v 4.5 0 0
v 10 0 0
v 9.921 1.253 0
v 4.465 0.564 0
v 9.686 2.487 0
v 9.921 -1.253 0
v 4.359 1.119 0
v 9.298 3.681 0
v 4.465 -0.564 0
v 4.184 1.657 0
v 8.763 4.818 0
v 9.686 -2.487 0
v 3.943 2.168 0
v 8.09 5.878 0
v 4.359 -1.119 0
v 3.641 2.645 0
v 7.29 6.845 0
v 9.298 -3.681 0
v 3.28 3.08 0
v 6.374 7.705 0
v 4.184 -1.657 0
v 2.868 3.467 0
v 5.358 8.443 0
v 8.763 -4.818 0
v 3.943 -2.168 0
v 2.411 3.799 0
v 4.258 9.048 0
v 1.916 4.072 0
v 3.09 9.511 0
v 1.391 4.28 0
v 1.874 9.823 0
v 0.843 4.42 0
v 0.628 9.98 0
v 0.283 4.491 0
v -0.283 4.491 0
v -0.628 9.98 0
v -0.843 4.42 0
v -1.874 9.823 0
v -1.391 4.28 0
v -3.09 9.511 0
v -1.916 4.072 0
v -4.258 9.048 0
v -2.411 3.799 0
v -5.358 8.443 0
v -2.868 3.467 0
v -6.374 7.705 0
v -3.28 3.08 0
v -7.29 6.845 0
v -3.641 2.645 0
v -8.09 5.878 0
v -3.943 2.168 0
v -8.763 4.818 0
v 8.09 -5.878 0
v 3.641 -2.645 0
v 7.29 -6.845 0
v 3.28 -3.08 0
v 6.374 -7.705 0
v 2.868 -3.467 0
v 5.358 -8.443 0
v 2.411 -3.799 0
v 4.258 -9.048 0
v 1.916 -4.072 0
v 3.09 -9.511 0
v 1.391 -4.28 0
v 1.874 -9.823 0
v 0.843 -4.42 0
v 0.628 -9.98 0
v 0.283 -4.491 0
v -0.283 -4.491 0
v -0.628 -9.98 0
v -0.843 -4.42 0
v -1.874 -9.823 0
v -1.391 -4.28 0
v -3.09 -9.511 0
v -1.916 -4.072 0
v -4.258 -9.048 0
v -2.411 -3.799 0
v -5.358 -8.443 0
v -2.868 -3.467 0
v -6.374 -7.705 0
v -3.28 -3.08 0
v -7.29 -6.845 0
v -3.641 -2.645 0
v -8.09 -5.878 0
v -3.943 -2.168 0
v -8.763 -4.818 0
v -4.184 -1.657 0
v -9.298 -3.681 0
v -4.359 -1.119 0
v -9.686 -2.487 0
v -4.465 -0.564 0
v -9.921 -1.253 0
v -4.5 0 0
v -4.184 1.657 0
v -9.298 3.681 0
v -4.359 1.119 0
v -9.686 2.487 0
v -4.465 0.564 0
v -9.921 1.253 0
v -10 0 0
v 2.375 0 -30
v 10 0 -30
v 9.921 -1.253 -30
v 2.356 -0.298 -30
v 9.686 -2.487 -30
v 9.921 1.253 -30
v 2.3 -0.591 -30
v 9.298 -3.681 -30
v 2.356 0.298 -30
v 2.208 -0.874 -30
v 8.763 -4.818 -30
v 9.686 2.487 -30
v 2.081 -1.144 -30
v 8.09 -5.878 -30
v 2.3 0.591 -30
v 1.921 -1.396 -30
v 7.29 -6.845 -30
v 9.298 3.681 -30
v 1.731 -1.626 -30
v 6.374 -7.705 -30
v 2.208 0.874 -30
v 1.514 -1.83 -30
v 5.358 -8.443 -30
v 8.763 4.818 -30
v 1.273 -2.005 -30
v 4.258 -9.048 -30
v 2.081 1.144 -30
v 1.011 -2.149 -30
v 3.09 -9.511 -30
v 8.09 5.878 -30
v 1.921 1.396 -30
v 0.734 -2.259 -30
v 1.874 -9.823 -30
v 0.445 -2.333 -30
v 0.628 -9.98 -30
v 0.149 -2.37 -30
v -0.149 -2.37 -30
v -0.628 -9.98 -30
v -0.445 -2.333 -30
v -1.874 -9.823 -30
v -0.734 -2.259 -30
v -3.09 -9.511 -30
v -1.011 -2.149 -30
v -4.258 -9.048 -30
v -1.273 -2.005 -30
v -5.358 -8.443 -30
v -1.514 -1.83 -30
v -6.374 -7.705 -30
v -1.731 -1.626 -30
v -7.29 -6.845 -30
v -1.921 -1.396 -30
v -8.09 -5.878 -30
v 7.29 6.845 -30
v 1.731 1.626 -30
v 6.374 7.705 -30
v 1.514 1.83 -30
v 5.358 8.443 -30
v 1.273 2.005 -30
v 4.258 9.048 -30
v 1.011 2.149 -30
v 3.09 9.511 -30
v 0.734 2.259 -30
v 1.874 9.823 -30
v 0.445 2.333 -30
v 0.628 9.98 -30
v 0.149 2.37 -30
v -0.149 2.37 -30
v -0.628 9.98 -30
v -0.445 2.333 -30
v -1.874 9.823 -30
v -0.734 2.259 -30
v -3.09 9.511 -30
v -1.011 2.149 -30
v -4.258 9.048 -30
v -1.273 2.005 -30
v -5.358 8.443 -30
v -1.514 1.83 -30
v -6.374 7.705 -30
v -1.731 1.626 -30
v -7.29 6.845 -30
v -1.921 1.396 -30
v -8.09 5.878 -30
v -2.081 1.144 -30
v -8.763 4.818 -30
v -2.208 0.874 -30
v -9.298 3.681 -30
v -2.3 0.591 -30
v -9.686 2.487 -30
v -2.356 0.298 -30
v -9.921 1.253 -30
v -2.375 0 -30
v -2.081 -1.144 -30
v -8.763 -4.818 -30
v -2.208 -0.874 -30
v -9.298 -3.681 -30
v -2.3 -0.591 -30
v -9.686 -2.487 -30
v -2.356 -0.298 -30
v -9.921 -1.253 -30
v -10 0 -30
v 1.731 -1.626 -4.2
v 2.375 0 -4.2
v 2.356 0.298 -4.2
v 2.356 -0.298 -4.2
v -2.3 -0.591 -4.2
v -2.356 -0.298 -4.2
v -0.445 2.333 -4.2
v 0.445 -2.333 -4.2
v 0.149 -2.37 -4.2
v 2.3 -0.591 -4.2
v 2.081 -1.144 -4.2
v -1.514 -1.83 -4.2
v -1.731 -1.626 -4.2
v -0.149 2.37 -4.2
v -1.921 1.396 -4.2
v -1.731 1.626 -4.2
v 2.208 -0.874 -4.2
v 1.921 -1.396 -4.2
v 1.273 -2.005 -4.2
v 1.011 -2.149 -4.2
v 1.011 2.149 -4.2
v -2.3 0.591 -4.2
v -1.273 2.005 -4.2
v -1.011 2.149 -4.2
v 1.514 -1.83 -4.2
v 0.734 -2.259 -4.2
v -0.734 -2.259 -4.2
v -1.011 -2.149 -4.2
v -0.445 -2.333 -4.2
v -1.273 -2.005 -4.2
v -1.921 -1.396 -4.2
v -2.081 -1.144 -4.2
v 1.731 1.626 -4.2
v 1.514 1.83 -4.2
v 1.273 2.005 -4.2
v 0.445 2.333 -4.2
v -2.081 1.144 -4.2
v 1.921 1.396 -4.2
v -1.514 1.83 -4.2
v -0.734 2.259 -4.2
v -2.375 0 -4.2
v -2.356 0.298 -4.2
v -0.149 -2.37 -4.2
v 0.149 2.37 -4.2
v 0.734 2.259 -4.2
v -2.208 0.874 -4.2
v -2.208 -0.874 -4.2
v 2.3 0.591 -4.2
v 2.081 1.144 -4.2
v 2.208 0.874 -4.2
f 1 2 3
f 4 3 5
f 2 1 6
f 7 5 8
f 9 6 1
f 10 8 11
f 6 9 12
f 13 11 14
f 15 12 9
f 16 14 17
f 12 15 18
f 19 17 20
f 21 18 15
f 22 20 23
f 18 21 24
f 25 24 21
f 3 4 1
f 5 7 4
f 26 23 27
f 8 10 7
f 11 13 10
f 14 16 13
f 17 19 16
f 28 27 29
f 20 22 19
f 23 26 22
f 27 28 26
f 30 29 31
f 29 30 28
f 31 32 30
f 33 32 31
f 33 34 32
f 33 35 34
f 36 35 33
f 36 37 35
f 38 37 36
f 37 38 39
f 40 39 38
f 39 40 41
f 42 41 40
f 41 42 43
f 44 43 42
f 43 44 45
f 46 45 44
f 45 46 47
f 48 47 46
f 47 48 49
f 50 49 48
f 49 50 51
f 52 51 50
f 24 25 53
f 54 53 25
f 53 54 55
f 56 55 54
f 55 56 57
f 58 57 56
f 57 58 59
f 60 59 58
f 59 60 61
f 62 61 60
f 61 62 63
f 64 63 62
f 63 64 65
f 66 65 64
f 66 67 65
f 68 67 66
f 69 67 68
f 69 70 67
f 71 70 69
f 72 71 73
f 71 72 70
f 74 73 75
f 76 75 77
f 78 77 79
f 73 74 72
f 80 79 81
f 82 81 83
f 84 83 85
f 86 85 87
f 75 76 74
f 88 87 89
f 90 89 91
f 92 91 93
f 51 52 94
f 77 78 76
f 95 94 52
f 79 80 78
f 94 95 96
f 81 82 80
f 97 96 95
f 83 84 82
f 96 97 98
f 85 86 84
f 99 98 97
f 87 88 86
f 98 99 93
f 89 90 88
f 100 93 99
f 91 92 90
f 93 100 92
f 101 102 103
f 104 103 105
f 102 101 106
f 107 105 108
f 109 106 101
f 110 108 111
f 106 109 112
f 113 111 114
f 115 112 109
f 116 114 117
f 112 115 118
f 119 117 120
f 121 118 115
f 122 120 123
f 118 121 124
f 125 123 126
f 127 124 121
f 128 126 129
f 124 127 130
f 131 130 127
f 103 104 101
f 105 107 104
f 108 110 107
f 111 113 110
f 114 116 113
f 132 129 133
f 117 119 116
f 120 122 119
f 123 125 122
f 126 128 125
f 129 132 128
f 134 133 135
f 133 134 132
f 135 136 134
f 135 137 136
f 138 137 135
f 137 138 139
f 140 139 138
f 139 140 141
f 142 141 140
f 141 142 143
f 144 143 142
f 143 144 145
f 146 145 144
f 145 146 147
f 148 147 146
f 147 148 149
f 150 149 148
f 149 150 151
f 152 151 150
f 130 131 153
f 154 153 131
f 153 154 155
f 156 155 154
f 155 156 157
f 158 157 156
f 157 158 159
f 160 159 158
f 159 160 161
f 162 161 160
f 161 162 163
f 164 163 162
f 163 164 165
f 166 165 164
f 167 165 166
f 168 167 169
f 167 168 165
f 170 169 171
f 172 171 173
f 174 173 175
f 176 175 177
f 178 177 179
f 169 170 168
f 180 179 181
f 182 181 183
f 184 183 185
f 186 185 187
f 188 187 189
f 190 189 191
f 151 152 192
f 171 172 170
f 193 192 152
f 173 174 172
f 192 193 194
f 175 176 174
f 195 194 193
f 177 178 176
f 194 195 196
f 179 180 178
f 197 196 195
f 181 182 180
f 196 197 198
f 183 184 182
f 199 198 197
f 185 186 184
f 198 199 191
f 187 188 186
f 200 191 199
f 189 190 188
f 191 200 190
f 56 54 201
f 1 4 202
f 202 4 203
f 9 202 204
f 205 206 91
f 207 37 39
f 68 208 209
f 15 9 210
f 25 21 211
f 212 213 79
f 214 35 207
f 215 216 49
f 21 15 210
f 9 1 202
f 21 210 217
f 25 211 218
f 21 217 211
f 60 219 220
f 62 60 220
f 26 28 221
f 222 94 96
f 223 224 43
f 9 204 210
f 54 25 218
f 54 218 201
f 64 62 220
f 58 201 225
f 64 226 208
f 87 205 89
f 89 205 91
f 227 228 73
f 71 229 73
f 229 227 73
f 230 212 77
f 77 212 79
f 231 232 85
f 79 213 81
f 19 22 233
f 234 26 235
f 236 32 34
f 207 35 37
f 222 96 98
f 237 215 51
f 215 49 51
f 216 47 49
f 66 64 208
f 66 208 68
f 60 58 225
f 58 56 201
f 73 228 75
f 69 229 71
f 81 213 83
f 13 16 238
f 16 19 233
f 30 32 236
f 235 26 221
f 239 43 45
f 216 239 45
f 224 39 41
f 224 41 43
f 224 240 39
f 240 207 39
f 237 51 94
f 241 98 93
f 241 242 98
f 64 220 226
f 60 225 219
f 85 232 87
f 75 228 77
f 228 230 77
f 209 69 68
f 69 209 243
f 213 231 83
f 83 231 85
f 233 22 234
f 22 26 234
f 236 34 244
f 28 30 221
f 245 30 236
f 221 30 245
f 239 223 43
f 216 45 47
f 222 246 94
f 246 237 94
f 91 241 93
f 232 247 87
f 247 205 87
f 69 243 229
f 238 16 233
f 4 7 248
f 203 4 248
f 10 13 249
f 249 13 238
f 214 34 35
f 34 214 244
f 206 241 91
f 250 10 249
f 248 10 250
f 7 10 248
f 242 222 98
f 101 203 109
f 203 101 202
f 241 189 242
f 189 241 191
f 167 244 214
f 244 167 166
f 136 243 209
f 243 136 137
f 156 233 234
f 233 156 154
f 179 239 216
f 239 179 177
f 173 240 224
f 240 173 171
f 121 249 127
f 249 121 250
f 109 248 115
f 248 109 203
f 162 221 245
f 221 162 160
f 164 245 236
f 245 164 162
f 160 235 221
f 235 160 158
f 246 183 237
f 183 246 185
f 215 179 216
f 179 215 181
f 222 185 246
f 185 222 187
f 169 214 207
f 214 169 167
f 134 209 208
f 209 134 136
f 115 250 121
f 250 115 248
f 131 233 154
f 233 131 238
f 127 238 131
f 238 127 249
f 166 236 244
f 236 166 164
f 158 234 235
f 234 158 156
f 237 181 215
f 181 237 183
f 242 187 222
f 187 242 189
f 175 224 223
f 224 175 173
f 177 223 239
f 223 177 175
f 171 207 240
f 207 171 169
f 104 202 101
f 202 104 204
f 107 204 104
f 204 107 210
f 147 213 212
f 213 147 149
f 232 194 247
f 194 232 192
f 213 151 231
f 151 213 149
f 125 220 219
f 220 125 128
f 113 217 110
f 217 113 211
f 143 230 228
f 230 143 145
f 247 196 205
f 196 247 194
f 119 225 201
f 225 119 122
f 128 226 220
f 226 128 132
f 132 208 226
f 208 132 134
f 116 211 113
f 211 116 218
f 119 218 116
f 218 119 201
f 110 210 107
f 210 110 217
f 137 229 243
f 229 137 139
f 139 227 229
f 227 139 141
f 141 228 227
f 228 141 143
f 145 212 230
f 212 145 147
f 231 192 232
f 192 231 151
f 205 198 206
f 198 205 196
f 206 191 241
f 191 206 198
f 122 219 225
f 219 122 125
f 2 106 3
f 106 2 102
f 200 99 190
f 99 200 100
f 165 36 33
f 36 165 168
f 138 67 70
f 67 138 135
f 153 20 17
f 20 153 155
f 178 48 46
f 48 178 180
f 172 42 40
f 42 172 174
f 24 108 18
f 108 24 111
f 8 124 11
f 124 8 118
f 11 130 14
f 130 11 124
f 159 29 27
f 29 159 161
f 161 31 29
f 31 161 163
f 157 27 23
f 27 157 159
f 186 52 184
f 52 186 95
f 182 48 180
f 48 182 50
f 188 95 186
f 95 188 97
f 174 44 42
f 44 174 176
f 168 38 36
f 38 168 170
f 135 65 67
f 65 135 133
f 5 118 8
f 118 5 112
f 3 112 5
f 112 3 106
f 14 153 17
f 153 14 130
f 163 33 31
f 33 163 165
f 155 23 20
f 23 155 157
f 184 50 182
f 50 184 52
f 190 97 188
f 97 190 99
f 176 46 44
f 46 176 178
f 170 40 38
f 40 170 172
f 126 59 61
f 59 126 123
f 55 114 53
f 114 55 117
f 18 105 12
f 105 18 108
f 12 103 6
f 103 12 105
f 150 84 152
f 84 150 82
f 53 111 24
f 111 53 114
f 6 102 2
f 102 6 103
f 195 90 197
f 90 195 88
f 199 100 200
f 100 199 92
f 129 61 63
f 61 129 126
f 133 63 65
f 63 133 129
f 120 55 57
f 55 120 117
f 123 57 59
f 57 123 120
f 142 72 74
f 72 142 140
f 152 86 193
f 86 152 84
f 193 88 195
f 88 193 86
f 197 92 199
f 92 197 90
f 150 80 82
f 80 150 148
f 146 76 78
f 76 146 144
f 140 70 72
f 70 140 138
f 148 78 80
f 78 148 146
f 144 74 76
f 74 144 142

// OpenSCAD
$fn = 50;


difference() {
	union() {
		translate(v = [0, 0, -30.0000000000]) {
			cylinder(h = 30, r = 10.0000000000);
		}
		cylinder(h = 0, r = 19.0000000000);
	}
	union() {
		translate(v = [0, 0, 0]) {
			rotate(a = [0, 0, 0]) {
				difference() {
					union() {
						#translate(v = [0, 0, -30.0000000000]) {
							cylinder(h = 30, r = 2.2500000000);
						}
						#translate(v = [0, 0, -4.2000000000]) {
							cylinder(h = 4.2000000000, r1 = 2.3750000000, r2 = 4.5000000000);
						}
						#translate(v = [0, 0, -30.0000000000]) {
							cylinder(h = 30, r = 2.3750000000);
						}
						#translate(v = [0, 0, -30.0000000000]) {
							cylinder(h = 30, r = 2.2500000000);
						}
					}
					union();
				}
			}
		}
	}
}
